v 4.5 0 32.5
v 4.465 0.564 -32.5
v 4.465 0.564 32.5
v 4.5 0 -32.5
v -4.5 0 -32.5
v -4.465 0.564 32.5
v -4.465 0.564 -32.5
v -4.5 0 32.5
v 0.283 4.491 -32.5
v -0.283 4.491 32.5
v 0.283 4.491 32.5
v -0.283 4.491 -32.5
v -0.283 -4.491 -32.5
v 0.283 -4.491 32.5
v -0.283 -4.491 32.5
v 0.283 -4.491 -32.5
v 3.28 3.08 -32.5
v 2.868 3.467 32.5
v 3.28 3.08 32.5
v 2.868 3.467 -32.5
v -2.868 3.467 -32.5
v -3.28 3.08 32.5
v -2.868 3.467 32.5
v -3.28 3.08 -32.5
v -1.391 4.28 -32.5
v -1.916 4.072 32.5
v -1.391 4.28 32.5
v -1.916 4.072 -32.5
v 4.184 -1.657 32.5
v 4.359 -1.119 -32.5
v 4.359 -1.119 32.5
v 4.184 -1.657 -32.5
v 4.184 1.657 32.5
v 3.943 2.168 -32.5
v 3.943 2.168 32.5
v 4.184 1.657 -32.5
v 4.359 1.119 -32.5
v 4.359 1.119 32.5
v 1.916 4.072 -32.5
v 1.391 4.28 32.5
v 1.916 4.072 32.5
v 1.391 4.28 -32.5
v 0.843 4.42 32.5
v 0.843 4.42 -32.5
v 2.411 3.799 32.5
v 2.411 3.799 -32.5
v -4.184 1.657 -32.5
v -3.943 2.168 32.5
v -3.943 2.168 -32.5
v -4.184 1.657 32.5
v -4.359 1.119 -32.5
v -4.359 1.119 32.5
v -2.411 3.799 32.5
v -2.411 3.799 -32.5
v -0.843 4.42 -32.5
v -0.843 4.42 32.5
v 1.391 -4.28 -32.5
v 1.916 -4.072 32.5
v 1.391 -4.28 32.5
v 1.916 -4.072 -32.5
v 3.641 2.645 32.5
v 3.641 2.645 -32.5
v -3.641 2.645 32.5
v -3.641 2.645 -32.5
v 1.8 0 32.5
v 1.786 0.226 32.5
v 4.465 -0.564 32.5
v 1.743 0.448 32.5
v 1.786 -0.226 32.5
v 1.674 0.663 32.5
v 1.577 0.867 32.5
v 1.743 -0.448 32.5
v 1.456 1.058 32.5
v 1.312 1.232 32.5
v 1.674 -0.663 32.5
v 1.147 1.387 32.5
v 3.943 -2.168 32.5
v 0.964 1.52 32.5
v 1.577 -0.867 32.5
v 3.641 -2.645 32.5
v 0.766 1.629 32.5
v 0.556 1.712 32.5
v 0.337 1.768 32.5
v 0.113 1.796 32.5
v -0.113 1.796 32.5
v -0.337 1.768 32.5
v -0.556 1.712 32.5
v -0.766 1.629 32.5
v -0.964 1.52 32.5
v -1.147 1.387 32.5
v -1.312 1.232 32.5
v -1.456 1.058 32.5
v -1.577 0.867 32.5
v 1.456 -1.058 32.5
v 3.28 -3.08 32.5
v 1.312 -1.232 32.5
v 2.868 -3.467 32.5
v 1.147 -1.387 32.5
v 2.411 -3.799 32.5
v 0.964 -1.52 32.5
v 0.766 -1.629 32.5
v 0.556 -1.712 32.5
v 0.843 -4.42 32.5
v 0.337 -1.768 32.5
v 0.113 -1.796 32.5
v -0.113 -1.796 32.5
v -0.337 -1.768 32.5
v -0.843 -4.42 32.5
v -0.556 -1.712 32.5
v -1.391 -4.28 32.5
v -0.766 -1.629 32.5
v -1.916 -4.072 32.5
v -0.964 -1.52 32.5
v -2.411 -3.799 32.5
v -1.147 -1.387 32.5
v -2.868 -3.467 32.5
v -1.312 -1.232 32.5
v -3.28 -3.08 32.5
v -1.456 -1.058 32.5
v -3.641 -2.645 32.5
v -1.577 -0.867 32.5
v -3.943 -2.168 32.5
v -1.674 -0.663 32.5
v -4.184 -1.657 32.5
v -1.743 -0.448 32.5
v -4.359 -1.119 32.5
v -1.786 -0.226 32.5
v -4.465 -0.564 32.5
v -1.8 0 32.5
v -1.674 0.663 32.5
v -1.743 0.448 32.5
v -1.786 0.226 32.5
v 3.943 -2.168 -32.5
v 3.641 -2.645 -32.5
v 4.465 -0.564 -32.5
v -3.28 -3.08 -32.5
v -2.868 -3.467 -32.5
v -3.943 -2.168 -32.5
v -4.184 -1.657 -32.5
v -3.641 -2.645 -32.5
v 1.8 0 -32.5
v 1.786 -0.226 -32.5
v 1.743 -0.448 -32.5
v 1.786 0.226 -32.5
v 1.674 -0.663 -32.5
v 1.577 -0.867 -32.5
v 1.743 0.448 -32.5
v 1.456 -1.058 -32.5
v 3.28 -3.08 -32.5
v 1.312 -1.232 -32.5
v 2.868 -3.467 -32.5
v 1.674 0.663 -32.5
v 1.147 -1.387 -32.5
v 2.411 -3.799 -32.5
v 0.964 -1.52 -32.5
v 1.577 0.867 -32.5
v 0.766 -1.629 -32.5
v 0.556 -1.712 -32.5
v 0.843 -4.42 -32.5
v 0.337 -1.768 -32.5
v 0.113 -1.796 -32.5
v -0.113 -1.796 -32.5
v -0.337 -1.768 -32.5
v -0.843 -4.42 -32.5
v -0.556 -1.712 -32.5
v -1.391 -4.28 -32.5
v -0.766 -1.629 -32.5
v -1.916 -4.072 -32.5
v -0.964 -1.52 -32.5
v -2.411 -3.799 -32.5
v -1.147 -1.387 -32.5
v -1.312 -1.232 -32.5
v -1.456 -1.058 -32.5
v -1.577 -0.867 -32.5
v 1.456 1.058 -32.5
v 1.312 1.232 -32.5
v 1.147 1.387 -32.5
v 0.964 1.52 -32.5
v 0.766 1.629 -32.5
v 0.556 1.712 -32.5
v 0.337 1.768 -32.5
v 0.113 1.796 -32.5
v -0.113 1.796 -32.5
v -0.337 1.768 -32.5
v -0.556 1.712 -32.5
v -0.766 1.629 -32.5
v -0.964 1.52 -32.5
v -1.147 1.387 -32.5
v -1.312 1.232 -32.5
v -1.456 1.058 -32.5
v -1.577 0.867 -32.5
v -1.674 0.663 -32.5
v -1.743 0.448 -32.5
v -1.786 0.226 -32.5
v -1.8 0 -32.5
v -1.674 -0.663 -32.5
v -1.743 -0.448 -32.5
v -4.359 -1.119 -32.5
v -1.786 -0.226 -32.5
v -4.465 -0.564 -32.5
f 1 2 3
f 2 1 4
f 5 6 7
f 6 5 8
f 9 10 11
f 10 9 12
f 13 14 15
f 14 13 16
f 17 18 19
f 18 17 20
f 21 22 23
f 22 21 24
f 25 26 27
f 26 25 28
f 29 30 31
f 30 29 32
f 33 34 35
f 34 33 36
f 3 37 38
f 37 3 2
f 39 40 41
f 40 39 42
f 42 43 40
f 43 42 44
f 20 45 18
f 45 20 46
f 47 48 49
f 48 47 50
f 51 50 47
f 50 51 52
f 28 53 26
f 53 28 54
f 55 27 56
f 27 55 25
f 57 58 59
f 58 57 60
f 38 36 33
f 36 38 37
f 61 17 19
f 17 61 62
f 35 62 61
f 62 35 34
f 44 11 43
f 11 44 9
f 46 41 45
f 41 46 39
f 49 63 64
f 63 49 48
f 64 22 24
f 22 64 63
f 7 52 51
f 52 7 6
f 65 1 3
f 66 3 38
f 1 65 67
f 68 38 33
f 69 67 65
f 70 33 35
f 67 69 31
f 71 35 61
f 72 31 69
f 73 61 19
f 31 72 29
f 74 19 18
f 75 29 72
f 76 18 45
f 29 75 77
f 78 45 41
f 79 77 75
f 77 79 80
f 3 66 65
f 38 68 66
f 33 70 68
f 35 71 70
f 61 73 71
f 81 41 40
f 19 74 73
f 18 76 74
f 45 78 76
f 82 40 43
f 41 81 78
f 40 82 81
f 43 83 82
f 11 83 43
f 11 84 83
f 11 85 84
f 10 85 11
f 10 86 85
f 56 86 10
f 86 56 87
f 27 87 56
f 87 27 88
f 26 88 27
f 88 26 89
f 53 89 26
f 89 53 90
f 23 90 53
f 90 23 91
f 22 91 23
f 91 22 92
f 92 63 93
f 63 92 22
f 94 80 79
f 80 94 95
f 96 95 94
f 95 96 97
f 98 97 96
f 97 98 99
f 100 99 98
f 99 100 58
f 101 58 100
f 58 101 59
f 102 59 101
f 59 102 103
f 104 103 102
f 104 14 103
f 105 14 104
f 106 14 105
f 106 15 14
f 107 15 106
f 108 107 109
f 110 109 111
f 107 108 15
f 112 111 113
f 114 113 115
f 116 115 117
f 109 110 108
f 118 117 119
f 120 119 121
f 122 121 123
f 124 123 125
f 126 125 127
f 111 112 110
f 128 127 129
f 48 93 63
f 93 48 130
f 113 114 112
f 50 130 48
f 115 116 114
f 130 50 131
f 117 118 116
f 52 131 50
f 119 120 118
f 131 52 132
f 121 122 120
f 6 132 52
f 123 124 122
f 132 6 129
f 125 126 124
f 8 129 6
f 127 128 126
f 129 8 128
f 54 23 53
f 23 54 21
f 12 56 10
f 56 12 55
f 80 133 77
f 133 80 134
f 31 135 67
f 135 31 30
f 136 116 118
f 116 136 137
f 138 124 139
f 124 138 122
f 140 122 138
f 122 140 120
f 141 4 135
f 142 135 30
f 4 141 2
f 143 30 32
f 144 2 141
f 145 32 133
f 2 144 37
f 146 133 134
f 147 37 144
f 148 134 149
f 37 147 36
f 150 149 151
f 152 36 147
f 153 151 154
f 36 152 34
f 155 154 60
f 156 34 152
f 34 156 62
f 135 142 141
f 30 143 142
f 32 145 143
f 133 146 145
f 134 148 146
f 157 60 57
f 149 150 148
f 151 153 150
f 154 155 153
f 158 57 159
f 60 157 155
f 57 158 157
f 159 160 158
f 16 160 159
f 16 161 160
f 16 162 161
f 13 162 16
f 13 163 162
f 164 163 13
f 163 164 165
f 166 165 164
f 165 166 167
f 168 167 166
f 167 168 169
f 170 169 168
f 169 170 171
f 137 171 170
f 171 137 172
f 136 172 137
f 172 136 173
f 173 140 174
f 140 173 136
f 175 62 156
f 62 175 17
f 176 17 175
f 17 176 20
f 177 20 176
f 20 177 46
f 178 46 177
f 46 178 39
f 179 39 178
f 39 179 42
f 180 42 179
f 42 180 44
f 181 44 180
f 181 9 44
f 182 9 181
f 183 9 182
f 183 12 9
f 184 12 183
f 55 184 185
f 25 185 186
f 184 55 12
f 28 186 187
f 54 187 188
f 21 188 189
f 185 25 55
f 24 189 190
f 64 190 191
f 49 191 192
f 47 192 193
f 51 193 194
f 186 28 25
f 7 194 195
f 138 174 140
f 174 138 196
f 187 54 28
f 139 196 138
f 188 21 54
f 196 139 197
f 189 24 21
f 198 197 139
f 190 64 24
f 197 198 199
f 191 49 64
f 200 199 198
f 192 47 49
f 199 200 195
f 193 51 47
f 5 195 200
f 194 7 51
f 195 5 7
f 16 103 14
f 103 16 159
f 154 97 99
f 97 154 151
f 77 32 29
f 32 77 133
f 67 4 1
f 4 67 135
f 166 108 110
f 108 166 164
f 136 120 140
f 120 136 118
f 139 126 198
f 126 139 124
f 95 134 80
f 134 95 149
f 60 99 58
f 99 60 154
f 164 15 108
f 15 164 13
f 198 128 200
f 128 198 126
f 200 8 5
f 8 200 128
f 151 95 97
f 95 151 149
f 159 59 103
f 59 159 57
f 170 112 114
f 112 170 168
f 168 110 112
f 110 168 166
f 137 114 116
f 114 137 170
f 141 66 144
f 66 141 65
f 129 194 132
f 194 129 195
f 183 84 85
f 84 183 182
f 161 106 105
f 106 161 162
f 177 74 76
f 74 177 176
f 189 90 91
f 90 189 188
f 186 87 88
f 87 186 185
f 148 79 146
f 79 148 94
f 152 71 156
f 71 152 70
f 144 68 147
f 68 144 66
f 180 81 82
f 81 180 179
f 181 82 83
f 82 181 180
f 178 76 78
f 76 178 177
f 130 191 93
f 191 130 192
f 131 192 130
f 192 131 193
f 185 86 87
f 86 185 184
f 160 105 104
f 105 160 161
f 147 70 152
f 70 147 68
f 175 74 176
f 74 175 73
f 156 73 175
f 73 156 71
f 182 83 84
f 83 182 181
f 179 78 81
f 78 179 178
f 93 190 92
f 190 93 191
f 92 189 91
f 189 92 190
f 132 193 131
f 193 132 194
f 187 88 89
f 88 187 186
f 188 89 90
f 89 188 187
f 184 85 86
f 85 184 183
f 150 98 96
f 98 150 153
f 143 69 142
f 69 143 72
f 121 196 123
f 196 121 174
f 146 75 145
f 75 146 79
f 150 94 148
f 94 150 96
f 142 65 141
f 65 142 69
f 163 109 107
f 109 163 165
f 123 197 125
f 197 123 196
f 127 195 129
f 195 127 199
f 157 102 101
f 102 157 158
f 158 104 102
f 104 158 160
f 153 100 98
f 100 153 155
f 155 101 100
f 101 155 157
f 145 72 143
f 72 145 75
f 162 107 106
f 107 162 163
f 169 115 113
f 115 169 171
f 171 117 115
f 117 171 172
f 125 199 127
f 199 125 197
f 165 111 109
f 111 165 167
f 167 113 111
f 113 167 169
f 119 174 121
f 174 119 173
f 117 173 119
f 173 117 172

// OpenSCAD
$fn = 50;


difference() {
	union() {
		translate(v = [0, 0, -32.5000000000]) {
			cylinder(h = 65, r = 4.5000000000);
		}
	}
	union() {
		translate(v = [0, 0, -100.0000000000]) {
			cylinder(h = 200, r = 1.8000000000);
		}
	}
}
